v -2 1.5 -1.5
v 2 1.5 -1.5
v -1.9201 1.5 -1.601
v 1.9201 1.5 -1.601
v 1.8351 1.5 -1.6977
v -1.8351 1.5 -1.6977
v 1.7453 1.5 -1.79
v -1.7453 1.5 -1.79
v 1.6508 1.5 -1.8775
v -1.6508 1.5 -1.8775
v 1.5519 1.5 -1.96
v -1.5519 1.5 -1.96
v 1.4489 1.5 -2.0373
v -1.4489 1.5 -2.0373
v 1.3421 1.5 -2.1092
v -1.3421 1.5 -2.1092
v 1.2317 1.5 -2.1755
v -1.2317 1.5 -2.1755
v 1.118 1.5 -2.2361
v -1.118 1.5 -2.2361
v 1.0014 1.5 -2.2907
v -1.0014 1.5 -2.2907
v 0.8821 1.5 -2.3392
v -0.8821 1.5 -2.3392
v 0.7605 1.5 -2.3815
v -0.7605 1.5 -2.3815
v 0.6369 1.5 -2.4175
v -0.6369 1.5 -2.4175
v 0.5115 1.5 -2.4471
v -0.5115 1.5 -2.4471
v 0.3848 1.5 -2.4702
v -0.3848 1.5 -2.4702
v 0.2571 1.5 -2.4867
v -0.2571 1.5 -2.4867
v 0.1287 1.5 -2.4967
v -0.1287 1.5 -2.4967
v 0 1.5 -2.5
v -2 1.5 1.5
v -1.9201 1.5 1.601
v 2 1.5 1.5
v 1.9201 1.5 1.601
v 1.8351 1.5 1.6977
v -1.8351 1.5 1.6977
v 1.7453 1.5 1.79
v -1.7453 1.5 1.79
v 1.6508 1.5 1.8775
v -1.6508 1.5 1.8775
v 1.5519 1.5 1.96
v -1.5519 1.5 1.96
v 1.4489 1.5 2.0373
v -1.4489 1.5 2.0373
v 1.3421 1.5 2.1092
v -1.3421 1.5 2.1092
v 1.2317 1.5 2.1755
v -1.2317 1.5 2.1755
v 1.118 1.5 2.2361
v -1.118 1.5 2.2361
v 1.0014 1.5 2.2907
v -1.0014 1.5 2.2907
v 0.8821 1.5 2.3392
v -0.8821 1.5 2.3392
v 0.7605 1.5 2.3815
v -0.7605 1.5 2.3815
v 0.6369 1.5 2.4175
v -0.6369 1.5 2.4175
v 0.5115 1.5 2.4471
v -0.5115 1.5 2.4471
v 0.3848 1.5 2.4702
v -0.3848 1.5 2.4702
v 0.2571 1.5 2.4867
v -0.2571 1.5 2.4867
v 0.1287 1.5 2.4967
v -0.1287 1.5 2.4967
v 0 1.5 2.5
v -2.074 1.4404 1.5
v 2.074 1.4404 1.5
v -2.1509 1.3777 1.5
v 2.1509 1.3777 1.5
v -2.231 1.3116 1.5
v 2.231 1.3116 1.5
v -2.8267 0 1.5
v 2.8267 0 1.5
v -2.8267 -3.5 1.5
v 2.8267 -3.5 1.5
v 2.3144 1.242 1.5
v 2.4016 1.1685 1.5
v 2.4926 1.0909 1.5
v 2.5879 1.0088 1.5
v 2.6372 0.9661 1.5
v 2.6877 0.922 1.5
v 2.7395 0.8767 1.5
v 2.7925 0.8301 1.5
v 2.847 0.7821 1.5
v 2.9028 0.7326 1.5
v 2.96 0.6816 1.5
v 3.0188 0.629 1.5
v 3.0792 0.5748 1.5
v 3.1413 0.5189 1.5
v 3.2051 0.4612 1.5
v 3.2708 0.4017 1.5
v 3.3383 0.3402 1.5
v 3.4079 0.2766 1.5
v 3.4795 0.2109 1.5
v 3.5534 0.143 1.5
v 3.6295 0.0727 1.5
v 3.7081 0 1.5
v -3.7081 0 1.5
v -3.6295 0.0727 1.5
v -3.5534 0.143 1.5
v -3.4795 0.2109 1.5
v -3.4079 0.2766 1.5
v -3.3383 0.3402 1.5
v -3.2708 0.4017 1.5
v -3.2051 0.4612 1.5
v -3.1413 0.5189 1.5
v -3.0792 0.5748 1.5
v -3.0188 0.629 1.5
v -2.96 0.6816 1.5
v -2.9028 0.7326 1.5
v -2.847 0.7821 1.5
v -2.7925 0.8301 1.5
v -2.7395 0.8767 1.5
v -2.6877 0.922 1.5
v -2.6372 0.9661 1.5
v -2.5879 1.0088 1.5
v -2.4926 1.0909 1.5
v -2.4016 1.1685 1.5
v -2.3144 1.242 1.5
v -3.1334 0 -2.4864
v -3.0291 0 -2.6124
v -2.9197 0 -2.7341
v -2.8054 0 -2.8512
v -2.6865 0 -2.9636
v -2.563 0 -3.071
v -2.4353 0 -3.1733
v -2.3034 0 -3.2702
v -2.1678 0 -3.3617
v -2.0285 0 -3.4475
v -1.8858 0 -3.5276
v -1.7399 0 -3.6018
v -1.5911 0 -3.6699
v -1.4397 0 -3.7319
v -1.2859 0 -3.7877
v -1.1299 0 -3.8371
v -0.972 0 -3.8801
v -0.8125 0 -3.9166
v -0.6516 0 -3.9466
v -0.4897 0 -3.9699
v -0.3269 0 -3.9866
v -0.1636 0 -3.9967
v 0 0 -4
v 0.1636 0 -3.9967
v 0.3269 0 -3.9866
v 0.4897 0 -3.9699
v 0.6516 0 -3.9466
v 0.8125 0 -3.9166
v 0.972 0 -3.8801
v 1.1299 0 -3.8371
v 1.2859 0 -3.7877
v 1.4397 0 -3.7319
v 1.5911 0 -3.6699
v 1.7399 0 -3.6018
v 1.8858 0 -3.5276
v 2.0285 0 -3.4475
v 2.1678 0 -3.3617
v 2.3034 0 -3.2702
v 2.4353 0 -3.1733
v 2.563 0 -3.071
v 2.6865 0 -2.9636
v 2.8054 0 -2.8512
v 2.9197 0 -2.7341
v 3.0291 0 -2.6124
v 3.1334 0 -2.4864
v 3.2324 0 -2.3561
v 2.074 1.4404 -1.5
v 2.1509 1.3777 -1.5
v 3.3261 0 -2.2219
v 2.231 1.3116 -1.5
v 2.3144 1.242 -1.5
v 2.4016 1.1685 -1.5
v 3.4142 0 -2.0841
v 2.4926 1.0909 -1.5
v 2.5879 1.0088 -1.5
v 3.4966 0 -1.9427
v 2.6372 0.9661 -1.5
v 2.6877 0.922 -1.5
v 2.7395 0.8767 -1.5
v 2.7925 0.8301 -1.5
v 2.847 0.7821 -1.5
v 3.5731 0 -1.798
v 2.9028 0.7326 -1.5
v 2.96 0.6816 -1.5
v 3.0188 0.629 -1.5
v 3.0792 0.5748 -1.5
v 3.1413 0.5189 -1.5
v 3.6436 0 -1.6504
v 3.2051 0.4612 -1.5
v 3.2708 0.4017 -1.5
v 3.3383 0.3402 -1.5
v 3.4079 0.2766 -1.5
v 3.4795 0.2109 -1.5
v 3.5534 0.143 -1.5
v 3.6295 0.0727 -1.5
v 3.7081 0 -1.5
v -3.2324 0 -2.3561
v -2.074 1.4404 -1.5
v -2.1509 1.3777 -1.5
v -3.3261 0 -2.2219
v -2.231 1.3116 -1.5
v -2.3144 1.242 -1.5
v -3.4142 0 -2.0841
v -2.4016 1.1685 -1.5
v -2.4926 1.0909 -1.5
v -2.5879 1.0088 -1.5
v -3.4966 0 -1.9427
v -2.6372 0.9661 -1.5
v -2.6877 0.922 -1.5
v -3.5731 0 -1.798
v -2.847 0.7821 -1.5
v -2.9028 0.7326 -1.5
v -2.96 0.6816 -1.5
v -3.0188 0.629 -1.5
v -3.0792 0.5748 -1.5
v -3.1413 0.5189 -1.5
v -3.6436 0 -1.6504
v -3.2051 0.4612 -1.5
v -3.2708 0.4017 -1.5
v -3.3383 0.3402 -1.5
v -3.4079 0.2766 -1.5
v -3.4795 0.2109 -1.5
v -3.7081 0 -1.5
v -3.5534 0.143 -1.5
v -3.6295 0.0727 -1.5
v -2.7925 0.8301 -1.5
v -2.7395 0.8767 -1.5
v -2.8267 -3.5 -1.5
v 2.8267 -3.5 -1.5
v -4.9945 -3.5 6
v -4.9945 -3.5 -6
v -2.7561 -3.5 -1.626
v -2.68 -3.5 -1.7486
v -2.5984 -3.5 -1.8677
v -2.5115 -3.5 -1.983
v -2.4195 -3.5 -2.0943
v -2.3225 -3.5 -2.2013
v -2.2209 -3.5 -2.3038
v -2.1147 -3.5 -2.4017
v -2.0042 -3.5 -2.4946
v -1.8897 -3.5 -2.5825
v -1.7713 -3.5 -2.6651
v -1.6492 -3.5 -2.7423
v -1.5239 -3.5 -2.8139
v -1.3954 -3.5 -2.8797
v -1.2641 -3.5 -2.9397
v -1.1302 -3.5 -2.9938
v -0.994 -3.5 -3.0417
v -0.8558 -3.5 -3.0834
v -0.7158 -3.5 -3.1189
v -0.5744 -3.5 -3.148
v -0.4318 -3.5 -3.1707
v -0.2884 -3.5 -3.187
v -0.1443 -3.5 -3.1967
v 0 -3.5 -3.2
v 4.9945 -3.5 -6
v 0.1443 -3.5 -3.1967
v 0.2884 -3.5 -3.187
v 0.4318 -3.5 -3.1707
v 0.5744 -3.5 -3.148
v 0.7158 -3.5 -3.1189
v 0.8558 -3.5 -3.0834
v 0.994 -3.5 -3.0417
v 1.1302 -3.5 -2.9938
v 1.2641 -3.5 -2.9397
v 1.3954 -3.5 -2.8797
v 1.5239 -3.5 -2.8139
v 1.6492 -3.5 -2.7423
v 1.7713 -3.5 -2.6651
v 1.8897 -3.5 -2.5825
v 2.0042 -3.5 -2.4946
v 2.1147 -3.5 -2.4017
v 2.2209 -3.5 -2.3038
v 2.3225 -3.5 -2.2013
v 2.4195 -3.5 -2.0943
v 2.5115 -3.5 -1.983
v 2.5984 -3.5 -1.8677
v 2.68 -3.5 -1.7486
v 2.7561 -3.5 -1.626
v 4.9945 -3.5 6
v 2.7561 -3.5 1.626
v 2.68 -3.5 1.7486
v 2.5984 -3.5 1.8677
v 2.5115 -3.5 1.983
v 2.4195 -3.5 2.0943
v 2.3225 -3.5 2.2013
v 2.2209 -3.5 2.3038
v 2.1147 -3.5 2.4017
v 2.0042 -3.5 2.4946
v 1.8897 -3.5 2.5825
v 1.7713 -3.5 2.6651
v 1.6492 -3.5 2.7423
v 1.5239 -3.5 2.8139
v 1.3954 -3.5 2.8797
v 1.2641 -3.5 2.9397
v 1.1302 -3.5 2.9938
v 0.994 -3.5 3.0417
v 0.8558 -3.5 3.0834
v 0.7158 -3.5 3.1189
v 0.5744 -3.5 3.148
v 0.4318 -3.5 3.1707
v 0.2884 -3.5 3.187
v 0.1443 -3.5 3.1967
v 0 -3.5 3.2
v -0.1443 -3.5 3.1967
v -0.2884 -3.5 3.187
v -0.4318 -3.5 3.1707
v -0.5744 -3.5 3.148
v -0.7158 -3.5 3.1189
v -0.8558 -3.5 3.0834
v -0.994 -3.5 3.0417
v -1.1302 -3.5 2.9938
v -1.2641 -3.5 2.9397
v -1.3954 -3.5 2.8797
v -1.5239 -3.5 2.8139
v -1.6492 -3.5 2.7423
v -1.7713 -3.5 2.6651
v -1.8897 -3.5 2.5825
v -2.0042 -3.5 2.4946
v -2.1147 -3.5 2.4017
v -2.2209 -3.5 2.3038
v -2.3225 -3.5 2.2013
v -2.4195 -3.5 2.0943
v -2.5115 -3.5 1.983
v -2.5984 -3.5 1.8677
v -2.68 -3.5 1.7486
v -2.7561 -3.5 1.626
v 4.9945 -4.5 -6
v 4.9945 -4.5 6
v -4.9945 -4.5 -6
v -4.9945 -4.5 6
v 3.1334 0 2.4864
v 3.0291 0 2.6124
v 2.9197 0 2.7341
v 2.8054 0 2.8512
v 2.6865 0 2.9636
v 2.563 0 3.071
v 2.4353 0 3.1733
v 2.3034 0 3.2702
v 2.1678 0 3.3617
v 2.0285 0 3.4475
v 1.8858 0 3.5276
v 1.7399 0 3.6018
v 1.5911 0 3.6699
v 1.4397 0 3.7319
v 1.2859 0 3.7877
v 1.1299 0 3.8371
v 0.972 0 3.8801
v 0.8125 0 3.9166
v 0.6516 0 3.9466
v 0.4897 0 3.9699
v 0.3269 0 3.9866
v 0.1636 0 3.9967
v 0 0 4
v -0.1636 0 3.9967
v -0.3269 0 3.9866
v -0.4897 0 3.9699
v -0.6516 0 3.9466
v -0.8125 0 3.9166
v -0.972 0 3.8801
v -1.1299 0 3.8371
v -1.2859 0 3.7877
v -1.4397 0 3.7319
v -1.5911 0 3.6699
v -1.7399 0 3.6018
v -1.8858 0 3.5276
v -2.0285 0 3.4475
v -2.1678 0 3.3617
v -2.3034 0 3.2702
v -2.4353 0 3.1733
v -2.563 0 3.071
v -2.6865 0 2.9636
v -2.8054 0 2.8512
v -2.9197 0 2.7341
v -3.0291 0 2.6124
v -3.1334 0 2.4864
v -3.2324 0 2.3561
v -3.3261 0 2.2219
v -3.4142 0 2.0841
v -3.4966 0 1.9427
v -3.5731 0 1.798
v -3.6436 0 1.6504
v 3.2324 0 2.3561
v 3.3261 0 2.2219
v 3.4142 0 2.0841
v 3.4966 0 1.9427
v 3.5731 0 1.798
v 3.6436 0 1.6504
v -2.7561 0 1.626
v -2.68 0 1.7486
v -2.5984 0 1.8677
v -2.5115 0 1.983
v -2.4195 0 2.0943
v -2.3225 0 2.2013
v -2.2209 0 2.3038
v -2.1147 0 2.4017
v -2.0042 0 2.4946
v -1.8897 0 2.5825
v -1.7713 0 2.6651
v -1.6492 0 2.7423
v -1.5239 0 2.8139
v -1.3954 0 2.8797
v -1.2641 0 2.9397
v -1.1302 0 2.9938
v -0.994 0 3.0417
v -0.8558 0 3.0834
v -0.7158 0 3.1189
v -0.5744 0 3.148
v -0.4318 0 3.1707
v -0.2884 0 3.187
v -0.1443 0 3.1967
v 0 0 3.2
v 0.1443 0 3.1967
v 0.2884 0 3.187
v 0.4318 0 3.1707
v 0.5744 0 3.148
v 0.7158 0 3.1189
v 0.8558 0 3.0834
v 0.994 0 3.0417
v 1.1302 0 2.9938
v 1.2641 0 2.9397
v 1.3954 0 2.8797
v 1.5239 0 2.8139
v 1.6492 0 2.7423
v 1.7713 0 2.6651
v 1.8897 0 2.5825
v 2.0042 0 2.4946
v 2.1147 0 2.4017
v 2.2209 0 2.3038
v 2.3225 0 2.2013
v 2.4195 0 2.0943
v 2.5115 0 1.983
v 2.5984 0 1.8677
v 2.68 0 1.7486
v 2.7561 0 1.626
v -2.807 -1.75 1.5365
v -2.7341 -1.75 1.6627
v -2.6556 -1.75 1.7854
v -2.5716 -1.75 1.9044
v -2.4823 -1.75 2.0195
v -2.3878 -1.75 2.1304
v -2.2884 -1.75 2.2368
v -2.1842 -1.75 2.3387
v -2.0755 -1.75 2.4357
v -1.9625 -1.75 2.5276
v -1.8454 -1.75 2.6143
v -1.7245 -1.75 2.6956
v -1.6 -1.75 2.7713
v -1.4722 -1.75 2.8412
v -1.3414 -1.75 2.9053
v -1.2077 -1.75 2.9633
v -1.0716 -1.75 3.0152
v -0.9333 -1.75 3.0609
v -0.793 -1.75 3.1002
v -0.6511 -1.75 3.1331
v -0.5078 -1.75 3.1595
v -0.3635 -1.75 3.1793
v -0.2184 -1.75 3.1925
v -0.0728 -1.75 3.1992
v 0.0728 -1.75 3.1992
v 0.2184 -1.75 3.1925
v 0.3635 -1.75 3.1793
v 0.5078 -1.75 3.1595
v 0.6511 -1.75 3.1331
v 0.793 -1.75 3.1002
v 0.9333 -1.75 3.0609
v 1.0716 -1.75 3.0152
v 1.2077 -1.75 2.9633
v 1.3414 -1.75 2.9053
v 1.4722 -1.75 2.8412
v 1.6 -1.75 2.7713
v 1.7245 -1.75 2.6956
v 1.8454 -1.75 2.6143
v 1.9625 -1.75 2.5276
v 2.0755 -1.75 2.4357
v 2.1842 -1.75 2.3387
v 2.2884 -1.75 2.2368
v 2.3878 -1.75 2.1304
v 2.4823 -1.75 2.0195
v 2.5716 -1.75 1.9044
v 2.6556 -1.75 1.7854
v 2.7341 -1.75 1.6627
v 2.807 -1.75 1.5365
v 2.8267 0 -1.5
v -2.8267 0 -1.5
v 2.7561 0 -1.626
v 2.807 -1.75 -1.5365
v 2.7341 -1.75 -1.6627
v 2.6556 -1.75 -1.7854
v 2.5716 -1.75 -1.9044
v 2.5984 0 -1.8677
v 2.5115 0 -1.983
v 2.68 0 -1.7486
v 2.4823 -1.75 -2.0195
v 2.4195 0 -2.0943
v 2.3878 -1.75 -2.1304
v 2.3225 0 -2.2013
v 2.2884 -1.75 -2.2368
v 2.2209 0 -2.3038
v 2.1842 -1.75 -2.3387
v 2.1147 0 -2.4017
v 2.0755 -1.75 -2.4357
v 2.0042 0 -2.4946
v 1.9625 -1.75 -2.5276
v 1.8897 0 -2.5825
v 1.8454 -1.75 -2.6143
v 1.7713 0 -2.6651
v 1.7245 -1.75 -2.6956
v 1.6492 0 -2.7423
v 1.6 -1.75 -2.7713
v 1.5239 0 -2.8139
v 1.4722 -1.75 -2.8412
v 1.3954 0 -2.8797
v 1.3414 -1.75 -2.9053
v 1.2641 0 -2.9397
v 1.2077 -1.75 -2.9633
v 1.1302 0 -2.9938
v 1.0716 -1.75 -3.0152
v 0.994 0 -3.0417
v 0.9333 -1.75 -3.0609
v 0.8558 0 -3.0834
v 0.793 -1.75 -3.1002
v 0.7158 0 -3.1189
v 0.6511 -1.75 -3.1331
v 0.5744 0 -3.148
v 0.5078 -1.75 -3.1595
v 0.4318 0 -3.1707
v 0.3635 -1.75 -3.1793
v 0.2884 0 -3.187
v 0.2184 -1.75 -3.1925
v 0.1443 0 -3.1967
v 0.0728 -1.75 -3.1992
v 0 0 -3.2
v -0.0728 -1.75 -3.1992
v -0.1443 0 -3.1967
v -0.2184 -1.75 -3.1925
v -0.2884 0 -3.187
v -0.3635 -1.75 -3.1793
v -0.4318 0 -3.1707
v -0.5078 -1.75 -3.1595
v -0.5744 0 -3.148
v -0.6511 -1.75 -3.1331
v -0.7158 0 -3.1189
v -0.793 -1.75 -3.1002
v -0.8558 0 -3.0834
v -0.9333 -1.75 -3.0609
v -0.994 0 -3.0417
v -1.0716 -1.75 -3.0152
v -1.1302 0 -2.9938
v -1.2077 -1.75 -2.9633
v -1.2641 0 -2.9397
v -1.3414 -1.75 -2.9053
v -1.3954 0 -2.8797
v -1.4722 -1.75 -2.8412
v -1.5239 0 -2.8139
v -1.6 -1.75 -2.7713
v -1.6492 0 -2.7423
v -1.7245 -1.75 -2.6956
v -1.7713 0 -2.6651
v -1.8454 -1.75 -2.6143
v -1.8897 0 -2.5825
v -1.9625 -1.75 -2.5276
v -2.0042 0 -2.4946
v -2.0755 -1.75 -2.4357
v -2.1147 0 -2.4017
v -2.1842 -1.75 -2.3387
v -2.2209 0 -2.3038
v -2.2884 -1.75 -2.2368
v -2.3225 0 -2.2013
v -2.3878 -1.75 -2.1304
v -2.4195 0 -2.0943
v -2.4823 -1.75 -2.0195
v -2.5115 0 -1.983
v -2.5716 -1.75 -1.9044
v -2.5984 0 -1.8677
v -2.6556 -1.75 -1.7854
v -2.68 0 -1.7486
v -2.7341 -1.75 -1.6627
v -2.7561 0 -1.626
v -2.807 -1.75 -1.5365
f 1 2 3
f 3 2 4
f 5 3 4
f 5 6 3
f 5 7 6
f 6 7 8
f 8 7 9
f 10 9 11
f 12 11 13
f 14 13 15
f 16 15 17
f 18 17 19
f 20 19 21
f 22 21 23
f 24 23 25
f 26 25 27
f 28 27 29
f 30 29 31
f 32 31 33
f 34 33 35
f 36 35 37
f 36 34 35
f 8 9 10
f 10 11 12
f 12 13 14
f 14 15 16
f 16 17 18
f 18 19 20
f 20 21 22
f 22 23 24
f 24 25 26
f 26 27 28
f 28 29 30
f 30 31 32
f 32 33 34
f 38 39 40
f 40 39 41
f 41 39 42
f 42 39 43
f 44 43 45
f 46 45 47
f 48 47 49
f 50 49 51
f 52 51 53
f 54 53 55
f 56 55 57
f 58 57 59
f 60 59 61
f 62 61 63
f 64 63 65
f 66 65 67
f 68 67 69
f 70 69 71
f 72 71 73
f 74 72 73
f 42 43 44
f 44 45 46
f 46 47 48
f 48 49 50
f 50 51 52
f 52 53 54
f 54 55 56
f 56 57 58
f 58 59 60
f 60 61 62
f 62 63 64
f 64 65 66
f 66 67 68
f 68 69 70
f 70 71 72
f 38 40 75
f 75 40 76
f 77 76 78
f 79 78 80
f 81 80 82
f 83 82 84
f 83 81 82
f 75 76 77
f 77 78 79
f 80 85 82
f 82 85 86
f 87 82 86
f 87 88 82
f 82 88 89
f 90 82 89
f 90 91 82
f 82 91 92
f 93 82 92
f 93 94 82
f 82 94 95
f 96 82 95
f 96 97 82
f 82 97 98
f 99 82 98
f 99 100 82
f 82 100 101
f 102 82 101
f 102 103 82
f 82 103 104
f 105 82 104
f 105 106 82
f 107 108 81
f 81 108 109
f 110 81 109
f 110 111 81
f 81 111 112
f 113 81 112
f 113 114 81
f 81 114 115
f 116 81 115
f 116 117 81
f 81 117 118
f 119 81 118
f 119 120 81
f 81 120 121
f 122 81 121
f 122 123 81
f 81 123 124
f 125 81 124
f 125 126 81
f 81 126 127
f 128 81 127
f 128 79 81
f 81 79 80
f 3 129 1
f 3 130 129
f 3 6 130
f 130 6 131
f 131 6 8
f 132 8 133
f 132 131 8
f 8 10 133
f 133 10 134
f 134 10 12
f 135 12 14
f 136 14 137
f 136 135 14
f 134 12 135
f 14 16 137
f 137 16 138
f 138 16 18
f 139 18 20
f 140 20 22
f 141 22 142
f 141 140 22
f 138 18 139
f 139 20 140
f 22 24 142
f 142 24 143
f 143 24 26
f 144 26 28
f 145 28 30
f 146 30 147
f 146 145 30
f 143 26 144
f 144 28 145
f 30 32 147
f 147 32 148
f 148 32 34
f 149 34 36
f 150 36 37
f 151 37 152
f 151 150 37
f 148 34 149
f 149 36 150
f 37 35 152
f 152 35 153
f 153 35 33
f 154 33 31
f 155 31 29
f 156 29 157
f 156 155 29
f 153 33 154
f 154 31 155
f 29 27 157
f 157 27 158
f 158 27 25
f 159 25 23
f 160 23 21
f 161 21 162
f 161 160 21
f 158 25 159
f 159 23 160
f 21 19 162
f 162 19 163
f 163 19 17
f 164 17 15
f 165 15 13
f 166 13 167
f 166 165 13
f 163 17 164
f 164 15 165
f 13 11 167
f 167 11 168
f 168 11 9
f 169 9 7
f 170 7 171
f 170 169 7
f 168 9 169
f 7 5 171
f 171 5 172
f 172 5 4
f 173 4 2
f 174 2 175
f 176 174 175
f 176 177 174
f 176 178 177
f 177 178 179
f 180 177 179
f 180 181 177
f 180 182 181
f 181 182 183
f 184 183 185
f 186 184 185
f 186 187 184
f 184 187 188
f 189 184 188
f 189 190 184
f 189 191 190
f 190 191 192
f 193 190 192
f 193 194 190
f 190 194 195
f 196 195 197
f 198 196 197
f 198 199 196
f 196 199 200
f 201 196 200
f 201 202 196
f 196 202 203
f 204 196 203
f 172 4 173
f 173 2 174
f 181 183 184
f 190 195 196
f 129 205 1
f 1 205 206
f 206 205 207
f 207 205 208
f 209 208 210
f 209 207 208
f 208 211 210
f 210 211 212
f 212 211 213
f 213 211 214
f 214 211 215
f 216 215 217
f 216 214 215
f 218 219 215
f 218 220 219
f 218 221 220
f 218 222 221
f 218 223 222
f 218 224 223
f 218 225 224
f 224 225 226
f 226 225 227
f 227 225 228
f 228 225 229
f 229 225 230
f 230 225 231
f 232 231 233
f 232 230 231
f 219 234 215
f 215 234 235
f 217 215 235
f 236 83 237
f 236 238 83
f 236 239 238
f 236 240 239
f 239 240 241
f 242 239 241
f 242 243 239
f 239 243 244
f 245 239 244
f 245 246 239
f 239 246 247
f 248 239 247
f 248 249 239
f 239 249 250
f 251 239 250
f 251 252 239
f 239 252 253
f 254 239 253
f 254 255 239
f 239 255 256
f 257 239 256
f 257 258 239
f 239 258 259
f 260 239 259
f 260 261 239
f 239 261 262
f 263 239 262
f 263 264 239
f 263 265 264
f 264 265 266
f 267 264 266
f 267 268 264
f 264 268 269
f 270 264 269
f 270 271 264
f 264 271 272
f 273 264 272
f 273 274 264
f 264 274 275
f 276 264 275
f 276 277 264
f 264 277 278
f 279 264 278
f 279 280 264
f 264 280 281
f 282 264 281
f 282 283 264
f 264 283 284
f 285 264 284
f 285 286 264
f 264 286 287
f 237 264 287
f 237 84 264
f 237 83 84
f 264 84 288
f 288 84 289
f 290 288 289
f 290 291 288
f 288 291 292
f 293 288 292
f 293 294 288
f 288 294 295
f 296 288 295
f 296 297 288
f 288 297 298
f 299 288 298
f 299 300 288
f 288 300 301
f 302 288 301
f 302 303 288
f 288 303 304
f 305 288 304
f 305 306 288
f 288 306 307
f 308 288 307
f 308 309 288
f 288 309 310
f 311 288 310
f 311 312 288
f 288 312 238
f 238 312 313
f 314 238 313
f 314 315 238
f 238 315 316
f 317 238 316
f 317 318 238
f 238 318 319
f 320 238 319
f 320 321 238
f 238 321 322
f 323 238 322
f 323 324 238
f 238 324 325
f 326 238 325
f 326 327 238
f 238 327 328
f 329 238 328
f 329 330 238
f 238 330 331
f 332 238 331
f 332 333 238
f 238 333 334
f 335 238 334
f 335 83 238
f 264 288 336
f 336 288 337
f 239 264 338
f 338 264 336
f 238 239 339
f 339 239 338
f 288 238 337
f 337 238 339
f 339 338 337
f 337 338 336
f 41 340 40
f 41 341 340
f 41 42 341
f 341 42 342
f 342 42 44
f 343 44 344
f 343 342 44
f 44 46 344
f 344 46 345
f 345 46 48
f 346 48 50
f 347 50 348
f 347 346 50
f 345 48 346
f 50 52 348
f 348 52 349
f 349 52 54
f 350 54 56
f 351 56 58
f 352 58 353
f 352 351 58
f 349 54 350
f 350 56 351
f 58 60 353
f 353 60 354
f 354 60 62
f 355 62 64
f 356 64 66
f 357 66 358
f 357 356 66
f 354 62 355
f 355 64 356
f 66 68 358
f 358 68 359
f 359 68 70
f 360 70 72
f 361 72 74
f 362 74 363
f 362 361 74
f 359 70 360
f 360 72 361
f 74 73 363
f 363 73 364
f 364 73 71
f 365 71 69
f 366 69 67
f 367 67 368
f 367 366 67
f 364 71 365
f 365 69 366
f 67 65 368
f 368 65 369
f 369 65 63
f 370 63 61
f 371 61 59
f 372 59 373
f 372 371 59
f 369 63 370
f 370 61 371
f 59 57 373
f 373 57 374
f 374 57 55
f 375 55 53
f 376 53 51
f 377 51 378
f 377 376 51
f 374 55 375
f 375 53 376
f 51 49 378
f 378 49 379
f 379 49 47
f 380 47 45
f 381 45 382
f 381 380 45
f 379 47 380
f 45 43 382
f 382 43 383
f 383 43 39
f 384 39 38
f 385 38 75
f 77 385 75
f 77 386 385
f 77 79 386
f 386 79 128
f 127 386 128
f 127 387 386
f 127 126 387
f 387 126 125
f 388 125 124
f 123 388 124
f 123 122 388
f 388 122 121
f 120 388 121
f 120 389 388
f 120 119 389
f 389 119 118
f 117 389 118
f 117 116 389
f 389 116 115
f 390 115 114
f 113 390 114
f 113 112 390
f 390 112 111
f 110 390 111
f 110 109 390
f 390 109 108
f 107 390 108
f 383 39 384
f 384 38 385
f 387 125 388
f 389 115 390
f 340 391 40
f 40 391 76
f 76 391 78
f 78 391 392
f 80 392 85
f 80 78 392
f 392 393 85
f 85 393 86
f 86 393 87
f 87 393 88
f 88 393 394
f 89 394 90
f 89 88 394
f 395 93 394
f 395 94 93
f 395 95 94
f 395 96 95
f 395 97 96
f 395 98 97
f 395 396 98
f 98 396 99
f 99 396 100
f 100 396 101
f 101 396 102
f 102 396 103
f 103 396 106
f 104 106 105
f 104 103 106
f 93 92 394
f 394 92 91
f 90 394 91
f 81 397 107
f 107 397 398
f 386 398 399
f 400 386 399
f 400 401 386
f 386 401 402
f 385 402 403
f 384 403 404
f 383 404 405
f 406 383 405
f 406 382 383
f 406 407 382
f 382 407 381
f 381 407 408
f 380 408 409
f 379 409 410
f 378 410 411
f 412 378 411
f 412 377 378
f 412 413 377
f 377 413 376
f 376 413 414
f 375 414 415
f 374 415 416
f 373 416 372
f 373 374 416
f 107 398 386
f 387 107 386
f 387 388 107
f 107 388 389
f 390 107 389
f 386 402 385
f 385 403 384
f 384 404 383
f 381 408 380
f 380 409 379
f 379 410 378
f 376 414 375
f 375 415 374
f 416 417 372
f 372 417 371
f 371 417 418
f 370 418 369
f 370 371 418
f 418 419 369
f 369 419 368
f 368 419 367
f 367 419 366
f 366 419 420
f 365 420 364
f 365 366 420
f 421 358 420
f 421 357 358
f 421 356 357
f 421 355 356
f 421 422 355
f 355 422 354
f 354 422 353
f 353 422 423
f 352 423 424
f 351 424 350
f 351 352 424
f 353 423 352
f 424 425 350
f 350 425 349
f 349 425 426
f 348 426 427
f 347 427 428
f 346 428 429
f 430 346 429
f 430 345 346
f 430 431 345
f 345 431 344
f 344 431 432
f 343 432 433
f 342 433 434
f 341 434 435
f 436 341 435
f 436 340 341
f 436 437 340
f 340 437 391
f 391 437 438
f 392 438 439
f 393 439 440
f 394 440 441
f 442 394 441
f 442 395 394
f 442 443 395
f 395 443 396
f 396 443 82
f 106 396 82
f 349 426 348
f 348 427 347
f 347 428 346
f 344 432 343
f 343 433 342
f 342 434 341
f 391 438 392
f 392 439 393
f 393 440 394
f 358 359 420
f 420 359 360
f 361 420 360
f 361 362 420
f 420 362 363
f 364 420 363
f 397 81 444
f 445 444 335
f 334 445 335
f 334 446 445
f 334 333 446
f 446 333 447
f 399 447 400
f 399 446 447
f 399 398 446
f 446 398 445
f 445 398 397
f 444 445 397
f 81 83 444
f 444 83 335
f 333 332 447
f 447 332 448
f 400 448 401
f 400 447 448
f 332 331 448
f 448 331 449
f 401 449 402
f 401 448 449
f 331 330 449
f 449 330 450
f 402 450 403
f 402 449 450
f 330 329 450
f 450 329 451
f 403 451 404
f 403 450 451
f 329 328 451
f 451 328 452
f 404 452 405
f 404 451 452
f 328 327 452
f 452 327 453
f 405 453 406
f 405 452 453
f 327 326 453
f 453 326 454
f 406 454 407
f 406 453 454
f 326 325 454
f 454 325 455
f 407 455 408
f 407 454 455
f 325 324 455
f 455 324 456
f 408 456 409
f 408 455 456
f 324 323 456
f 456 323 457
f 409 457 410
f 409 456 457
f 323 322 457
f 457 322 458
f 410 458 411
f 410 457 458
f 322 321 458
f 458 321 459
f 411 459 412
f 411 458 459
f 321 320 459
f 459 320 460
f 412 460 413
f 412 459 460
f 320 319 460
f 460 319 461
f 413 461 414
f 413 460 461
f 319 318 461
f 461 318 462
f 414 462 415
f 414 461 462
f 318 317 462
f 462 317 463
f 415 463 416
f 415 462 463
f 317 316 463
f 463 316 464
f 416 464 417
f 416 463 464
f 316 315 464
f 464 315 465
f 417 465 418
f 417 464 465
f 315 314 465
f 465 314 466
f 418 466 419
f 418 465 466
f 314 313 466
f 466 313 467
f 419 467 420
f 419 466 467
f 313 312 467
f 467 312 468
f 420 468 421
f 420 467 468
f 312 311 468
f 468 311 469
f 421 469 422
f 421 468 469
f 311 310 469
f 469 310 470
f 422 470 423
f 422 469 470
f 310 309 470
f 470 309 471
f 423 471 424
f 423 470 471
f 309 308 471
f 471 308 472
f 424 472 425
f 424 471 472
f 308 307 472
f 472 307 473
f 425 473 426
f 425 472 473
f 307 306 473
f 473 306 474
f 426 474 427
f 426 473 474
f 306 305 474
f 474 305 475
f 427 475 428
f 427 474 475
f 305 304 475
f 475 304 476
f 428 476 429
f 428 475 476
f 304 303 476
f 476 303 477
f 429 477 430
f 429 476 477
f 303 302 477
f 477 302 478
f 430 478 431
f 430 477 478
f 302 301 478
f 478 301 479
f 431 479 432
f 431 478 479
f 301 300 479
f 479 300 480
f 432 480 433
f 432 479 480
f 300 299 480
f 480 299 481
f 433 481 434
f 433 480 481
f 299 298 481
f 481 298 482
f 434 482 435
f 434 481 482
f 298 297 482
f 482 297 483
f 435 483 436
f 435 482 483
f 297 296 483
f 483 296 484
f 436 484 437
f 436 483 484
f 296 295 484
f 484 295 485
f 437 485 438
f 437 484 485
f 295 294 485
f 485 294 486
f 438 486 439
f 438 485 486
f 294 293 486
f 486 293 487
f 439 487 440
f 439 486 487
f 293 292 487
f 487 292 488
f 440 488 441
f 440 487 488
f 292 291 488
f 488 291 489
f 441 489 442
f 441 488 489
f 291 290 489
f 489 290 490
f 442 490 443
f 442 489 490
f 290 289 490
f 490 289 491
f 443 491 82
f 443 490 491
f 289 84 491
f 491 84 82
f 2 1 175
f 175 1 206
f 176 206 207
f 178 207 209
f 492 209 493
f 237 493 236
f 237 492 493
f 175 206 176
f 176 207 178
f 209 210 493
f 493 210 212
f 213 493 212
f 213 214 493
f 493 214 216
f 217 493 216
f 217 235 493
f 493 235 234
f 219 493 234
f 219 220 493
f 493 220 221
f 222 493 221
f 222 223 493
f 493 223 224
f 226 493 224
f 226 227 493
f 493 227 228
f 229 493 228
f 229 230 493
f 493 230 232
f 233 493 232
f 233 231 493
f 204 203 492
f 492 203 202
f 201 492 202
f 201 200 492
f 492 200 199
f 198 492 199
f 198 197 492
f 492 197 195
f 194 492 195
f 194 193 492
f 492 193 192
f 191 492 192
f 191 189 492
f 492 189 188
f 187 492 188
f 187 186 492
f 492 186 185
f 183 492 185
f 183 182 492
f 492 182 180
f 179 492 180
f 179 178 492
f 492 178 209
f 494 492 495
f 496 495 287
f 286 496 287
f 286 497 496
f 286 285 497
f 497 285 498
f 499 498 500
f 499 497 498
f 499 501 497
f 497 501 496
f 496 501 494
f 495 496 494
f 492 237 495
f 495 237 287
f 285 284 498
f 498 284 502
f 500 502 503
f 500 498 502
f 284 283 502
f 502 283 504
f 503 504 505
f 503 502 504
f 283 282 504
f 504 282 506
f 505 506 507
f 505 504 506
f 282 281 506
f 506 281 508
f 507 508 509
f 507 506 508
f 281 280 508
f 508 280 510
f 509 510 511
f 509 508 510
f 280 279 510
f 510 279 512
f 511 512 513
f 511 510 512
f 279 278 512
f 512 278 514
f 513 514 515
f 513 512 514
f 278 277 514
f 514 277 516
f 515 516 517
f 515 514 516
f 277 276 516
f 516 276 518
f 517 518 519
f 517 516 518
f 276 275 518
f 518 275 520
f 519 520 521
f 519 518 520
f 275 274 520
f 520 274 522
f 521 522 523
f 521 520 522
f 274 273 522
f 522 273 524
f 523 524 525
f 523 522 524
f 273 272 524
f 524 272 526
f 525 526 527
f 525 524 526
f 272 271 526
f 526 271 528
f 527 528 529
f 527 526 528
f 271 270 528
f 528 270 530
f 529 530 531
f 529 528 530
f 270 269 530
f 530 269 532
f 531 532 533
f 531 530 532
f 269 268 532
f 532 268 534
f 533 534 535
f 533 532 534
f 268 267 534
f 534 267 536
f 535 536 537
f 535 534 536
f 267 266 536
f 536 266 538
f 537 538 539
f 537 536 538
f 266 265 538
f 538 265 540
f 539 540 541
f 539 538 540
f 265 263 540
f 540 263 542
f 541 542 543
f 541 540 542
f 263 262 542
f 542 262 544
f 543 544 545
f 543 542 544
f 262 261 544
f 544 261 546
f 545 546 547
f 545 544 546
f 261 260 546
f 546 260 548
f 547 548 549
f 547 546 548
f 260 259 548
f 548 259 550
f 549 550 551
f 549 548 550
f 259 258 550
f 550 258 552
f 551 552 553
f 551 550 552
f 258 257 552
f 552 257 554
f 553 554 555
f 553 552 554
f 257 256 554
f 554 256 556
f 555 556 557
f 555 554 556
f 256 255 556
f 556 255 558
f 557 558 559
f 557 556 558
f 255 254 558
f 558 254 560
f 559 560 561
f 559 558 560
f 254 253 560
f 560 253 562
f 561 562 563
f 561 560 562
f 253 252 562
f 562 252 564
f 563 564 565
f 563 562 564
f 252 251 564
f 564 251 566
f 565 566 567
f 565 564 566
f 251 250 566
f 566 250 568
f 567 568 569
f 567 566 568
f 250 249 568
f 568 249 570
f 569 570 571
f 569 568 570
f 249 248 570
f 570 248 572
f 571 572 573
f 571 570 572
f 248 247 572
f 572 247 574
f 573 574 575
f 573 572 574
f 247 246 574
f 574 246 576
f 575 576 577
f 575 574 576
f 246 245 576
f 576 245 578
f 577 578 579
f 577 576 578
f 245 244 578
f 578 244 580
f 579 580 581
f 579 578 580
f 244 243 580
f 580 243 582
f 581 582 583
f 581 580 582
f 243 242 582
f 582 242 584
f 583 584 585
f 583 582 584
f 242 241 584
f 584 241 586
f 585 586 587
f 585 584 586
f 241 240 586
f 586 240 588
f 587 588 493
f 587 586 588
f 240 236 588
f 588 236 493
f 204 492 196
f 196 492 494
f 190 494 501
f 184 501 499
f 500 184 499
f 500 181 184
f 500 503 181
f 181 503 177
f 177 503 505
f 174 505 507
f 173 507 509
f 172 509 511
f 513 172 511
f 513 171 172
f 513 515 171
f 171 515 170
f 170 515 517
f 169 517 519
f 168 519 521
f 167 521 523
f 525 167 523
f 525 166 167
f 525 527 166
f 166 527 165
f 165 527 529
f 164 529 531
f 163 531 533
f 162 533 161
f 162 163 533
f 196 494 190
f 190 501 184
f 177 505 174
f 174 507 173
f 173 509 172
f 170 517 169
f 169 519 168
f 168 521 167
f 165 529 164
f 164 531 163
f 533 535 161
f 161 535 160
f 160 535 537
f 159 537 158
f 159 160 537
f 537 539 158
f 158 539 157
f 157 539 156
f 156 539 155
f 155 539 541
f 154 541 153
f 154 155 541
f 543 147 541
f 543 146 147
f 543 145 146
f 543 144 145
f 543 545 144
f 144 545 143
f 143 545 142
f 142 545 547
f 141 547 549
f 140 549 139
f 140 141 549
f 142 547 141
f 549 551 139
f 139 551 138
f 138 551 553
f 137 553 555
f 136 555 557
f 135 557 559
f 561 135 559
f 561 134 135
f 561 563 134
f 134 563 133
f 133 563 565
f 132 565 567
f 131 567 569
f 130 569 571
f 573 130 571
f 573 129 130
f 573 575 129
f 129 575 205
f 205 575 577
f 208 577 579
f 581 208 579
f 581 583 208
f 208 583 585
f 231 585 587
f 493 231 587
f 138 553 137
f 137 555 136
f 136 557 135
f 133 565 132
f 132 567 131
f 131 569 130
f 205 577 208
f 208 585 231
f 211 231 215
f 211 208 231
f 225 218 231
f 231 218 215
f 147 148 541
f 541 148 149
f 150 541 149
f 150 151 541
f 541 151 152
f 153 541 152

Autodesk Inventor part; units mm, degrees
ref_plane "YZ Plane" through (0, 0, 0) normal (1, 0, 0) x (0, 1, 0)
ref_plane "XZ Plane" through (0, 0, 0) normal (0, 1, 0) x (-1, 0, 0)
ref_plane "XY Plane" through (0, 0, 0) normal (0, 0, 1) x (1, 0, 0)
sketch "Sketch1" plane through (0, 0, 0) normal (0, 0, 1) x (1, 0, 0)
  line L0 (0, 4) -> (0, 0)
  line L1 (0, 0) -> (4, 0)
  line L2 (4, 0) -> (0, 4)
  dimension "d45" = 4
  dimension "d46" = 4
revolve "Revolution1" add sketch "Sketch1" angle 360 about axis through (0, 4, 0) along (0, -1, 0)
sketch "Sketch2" plane through (0, 0, 0) normal (0, -1, 0) x (1, 0, 0)
  circle A0 centre (0, 0) radius 3.2
  point P0 (0, 0)
  dimension "d3" = 6.4
extrude "Extrusion1" add sketch "Sketch2" along normal blind 3.5
sketch "Sketch3" plane through (0, -3.5, 0) normal (0, -1, 0) x (1, 0, 0)
  circle A0 centre (0, 0) radius 4 projected
  line L0 (-4.5, 1.5) -> (4.5, 1.5)
  line L1 (4.5, 1.5) -> (4.5, -1.5)
  line L2 (4.5, -1.5) -> (-4.5, -1.5)
  line L3 (-4.5, -1.5) -> (-4.5, 1.5)
  point P0 (0, 0)
  point P1 (0, 1.5)
  point P2 (4.5, 0)
  dimension "d27" = 0.5
  dimension "d28" = 3
extrude "Extrusion2" cut sketch "Sketch3" against normal through all contours A0 L2 L0 | A0 L0 L1 L2 | A0 L2 L3 L0
sketch "Sketch4" plane through (0, -3.5, 0) normal (0, -1, 0) x (1, 0, 0)
  line L0 (4.9945, 6) -> (-4.9945, 6)
  line L1 (-4.9945, 6) -> (-4.9945, -6)
  line L2 (-4.9945, -6) -> (4.9945, -6)
  line L3 (4.9945, -6) -> (4.9945, 6)
  arc A0 (-1.5, 3.7021) -> (-1.5, -3.7021) centre (0, 0) ccw projected
  arc A1 (-1.5, 3.4857) -> (-1.5, -3.4857) centre (0, 0) ccw projected
  line L4 (-1.5, 3.4857) -> (-1.5, 3.7021) projected
  line L5 (-1.5, -3.7021) -> (-1.5, -3.4857) projected
  arc A2 (-3.7081, -1.5) -> (3.7081, -1.5) centre (0, 0) ccw projected
  point P0 (4.9945, 0)
  point P1 (0, -6)
  point P2 (4.7697, 1.5)
  point P3 (-4.7697, 1.5)
  dimension "d18" = 1
  dimension "d42" = 1
extrude "Extrusion3" add sketch "Sketch4" along normal blind 1 contours L3 L2 L1 L0 | L4 A1 L5 A0
sketch "Sketch9" plane through (4.9945, -3.5, 6) normal (1, 0, 0) x (0, 0, -1)
  line L0 (3.5, 6) -> (8.5, 6)
  line L1 (8.5, 6) -> (8.5, 5)
  line L2 (8.5, 5) -> (3.5, 5)
  line L3 (3.5, 5) -> (3.5, 6)
  line L4 (4.5, 6) -> (2, 3.5) projected
  line L5 (4.9945, 3.5) -> (4.9945, 6) projected
  line L6 (4.9945, 3.5) -> (4.9945, 2.5) projected
  line L7 (7.5, 6) -> (10, 3.5) projected
  point P0 (6, 3.5)
  point P1 (4.5, 3.5)
  point P2 (7.5, 3.5)
  point P3 (10, 3.5)
  dimension "d47" = 1
extrude "Extrusion8" cut sketch "Sketch9" against normal through all
equation "\"d46\" = d45"
equation "\"d27\" = d22"
equation "\"d28\" = d19"
equation "\"d42\" = d18"
equation "\"d22\" = 0.5"
equation "\"d19\" = 3"
properties part number "Snap"
